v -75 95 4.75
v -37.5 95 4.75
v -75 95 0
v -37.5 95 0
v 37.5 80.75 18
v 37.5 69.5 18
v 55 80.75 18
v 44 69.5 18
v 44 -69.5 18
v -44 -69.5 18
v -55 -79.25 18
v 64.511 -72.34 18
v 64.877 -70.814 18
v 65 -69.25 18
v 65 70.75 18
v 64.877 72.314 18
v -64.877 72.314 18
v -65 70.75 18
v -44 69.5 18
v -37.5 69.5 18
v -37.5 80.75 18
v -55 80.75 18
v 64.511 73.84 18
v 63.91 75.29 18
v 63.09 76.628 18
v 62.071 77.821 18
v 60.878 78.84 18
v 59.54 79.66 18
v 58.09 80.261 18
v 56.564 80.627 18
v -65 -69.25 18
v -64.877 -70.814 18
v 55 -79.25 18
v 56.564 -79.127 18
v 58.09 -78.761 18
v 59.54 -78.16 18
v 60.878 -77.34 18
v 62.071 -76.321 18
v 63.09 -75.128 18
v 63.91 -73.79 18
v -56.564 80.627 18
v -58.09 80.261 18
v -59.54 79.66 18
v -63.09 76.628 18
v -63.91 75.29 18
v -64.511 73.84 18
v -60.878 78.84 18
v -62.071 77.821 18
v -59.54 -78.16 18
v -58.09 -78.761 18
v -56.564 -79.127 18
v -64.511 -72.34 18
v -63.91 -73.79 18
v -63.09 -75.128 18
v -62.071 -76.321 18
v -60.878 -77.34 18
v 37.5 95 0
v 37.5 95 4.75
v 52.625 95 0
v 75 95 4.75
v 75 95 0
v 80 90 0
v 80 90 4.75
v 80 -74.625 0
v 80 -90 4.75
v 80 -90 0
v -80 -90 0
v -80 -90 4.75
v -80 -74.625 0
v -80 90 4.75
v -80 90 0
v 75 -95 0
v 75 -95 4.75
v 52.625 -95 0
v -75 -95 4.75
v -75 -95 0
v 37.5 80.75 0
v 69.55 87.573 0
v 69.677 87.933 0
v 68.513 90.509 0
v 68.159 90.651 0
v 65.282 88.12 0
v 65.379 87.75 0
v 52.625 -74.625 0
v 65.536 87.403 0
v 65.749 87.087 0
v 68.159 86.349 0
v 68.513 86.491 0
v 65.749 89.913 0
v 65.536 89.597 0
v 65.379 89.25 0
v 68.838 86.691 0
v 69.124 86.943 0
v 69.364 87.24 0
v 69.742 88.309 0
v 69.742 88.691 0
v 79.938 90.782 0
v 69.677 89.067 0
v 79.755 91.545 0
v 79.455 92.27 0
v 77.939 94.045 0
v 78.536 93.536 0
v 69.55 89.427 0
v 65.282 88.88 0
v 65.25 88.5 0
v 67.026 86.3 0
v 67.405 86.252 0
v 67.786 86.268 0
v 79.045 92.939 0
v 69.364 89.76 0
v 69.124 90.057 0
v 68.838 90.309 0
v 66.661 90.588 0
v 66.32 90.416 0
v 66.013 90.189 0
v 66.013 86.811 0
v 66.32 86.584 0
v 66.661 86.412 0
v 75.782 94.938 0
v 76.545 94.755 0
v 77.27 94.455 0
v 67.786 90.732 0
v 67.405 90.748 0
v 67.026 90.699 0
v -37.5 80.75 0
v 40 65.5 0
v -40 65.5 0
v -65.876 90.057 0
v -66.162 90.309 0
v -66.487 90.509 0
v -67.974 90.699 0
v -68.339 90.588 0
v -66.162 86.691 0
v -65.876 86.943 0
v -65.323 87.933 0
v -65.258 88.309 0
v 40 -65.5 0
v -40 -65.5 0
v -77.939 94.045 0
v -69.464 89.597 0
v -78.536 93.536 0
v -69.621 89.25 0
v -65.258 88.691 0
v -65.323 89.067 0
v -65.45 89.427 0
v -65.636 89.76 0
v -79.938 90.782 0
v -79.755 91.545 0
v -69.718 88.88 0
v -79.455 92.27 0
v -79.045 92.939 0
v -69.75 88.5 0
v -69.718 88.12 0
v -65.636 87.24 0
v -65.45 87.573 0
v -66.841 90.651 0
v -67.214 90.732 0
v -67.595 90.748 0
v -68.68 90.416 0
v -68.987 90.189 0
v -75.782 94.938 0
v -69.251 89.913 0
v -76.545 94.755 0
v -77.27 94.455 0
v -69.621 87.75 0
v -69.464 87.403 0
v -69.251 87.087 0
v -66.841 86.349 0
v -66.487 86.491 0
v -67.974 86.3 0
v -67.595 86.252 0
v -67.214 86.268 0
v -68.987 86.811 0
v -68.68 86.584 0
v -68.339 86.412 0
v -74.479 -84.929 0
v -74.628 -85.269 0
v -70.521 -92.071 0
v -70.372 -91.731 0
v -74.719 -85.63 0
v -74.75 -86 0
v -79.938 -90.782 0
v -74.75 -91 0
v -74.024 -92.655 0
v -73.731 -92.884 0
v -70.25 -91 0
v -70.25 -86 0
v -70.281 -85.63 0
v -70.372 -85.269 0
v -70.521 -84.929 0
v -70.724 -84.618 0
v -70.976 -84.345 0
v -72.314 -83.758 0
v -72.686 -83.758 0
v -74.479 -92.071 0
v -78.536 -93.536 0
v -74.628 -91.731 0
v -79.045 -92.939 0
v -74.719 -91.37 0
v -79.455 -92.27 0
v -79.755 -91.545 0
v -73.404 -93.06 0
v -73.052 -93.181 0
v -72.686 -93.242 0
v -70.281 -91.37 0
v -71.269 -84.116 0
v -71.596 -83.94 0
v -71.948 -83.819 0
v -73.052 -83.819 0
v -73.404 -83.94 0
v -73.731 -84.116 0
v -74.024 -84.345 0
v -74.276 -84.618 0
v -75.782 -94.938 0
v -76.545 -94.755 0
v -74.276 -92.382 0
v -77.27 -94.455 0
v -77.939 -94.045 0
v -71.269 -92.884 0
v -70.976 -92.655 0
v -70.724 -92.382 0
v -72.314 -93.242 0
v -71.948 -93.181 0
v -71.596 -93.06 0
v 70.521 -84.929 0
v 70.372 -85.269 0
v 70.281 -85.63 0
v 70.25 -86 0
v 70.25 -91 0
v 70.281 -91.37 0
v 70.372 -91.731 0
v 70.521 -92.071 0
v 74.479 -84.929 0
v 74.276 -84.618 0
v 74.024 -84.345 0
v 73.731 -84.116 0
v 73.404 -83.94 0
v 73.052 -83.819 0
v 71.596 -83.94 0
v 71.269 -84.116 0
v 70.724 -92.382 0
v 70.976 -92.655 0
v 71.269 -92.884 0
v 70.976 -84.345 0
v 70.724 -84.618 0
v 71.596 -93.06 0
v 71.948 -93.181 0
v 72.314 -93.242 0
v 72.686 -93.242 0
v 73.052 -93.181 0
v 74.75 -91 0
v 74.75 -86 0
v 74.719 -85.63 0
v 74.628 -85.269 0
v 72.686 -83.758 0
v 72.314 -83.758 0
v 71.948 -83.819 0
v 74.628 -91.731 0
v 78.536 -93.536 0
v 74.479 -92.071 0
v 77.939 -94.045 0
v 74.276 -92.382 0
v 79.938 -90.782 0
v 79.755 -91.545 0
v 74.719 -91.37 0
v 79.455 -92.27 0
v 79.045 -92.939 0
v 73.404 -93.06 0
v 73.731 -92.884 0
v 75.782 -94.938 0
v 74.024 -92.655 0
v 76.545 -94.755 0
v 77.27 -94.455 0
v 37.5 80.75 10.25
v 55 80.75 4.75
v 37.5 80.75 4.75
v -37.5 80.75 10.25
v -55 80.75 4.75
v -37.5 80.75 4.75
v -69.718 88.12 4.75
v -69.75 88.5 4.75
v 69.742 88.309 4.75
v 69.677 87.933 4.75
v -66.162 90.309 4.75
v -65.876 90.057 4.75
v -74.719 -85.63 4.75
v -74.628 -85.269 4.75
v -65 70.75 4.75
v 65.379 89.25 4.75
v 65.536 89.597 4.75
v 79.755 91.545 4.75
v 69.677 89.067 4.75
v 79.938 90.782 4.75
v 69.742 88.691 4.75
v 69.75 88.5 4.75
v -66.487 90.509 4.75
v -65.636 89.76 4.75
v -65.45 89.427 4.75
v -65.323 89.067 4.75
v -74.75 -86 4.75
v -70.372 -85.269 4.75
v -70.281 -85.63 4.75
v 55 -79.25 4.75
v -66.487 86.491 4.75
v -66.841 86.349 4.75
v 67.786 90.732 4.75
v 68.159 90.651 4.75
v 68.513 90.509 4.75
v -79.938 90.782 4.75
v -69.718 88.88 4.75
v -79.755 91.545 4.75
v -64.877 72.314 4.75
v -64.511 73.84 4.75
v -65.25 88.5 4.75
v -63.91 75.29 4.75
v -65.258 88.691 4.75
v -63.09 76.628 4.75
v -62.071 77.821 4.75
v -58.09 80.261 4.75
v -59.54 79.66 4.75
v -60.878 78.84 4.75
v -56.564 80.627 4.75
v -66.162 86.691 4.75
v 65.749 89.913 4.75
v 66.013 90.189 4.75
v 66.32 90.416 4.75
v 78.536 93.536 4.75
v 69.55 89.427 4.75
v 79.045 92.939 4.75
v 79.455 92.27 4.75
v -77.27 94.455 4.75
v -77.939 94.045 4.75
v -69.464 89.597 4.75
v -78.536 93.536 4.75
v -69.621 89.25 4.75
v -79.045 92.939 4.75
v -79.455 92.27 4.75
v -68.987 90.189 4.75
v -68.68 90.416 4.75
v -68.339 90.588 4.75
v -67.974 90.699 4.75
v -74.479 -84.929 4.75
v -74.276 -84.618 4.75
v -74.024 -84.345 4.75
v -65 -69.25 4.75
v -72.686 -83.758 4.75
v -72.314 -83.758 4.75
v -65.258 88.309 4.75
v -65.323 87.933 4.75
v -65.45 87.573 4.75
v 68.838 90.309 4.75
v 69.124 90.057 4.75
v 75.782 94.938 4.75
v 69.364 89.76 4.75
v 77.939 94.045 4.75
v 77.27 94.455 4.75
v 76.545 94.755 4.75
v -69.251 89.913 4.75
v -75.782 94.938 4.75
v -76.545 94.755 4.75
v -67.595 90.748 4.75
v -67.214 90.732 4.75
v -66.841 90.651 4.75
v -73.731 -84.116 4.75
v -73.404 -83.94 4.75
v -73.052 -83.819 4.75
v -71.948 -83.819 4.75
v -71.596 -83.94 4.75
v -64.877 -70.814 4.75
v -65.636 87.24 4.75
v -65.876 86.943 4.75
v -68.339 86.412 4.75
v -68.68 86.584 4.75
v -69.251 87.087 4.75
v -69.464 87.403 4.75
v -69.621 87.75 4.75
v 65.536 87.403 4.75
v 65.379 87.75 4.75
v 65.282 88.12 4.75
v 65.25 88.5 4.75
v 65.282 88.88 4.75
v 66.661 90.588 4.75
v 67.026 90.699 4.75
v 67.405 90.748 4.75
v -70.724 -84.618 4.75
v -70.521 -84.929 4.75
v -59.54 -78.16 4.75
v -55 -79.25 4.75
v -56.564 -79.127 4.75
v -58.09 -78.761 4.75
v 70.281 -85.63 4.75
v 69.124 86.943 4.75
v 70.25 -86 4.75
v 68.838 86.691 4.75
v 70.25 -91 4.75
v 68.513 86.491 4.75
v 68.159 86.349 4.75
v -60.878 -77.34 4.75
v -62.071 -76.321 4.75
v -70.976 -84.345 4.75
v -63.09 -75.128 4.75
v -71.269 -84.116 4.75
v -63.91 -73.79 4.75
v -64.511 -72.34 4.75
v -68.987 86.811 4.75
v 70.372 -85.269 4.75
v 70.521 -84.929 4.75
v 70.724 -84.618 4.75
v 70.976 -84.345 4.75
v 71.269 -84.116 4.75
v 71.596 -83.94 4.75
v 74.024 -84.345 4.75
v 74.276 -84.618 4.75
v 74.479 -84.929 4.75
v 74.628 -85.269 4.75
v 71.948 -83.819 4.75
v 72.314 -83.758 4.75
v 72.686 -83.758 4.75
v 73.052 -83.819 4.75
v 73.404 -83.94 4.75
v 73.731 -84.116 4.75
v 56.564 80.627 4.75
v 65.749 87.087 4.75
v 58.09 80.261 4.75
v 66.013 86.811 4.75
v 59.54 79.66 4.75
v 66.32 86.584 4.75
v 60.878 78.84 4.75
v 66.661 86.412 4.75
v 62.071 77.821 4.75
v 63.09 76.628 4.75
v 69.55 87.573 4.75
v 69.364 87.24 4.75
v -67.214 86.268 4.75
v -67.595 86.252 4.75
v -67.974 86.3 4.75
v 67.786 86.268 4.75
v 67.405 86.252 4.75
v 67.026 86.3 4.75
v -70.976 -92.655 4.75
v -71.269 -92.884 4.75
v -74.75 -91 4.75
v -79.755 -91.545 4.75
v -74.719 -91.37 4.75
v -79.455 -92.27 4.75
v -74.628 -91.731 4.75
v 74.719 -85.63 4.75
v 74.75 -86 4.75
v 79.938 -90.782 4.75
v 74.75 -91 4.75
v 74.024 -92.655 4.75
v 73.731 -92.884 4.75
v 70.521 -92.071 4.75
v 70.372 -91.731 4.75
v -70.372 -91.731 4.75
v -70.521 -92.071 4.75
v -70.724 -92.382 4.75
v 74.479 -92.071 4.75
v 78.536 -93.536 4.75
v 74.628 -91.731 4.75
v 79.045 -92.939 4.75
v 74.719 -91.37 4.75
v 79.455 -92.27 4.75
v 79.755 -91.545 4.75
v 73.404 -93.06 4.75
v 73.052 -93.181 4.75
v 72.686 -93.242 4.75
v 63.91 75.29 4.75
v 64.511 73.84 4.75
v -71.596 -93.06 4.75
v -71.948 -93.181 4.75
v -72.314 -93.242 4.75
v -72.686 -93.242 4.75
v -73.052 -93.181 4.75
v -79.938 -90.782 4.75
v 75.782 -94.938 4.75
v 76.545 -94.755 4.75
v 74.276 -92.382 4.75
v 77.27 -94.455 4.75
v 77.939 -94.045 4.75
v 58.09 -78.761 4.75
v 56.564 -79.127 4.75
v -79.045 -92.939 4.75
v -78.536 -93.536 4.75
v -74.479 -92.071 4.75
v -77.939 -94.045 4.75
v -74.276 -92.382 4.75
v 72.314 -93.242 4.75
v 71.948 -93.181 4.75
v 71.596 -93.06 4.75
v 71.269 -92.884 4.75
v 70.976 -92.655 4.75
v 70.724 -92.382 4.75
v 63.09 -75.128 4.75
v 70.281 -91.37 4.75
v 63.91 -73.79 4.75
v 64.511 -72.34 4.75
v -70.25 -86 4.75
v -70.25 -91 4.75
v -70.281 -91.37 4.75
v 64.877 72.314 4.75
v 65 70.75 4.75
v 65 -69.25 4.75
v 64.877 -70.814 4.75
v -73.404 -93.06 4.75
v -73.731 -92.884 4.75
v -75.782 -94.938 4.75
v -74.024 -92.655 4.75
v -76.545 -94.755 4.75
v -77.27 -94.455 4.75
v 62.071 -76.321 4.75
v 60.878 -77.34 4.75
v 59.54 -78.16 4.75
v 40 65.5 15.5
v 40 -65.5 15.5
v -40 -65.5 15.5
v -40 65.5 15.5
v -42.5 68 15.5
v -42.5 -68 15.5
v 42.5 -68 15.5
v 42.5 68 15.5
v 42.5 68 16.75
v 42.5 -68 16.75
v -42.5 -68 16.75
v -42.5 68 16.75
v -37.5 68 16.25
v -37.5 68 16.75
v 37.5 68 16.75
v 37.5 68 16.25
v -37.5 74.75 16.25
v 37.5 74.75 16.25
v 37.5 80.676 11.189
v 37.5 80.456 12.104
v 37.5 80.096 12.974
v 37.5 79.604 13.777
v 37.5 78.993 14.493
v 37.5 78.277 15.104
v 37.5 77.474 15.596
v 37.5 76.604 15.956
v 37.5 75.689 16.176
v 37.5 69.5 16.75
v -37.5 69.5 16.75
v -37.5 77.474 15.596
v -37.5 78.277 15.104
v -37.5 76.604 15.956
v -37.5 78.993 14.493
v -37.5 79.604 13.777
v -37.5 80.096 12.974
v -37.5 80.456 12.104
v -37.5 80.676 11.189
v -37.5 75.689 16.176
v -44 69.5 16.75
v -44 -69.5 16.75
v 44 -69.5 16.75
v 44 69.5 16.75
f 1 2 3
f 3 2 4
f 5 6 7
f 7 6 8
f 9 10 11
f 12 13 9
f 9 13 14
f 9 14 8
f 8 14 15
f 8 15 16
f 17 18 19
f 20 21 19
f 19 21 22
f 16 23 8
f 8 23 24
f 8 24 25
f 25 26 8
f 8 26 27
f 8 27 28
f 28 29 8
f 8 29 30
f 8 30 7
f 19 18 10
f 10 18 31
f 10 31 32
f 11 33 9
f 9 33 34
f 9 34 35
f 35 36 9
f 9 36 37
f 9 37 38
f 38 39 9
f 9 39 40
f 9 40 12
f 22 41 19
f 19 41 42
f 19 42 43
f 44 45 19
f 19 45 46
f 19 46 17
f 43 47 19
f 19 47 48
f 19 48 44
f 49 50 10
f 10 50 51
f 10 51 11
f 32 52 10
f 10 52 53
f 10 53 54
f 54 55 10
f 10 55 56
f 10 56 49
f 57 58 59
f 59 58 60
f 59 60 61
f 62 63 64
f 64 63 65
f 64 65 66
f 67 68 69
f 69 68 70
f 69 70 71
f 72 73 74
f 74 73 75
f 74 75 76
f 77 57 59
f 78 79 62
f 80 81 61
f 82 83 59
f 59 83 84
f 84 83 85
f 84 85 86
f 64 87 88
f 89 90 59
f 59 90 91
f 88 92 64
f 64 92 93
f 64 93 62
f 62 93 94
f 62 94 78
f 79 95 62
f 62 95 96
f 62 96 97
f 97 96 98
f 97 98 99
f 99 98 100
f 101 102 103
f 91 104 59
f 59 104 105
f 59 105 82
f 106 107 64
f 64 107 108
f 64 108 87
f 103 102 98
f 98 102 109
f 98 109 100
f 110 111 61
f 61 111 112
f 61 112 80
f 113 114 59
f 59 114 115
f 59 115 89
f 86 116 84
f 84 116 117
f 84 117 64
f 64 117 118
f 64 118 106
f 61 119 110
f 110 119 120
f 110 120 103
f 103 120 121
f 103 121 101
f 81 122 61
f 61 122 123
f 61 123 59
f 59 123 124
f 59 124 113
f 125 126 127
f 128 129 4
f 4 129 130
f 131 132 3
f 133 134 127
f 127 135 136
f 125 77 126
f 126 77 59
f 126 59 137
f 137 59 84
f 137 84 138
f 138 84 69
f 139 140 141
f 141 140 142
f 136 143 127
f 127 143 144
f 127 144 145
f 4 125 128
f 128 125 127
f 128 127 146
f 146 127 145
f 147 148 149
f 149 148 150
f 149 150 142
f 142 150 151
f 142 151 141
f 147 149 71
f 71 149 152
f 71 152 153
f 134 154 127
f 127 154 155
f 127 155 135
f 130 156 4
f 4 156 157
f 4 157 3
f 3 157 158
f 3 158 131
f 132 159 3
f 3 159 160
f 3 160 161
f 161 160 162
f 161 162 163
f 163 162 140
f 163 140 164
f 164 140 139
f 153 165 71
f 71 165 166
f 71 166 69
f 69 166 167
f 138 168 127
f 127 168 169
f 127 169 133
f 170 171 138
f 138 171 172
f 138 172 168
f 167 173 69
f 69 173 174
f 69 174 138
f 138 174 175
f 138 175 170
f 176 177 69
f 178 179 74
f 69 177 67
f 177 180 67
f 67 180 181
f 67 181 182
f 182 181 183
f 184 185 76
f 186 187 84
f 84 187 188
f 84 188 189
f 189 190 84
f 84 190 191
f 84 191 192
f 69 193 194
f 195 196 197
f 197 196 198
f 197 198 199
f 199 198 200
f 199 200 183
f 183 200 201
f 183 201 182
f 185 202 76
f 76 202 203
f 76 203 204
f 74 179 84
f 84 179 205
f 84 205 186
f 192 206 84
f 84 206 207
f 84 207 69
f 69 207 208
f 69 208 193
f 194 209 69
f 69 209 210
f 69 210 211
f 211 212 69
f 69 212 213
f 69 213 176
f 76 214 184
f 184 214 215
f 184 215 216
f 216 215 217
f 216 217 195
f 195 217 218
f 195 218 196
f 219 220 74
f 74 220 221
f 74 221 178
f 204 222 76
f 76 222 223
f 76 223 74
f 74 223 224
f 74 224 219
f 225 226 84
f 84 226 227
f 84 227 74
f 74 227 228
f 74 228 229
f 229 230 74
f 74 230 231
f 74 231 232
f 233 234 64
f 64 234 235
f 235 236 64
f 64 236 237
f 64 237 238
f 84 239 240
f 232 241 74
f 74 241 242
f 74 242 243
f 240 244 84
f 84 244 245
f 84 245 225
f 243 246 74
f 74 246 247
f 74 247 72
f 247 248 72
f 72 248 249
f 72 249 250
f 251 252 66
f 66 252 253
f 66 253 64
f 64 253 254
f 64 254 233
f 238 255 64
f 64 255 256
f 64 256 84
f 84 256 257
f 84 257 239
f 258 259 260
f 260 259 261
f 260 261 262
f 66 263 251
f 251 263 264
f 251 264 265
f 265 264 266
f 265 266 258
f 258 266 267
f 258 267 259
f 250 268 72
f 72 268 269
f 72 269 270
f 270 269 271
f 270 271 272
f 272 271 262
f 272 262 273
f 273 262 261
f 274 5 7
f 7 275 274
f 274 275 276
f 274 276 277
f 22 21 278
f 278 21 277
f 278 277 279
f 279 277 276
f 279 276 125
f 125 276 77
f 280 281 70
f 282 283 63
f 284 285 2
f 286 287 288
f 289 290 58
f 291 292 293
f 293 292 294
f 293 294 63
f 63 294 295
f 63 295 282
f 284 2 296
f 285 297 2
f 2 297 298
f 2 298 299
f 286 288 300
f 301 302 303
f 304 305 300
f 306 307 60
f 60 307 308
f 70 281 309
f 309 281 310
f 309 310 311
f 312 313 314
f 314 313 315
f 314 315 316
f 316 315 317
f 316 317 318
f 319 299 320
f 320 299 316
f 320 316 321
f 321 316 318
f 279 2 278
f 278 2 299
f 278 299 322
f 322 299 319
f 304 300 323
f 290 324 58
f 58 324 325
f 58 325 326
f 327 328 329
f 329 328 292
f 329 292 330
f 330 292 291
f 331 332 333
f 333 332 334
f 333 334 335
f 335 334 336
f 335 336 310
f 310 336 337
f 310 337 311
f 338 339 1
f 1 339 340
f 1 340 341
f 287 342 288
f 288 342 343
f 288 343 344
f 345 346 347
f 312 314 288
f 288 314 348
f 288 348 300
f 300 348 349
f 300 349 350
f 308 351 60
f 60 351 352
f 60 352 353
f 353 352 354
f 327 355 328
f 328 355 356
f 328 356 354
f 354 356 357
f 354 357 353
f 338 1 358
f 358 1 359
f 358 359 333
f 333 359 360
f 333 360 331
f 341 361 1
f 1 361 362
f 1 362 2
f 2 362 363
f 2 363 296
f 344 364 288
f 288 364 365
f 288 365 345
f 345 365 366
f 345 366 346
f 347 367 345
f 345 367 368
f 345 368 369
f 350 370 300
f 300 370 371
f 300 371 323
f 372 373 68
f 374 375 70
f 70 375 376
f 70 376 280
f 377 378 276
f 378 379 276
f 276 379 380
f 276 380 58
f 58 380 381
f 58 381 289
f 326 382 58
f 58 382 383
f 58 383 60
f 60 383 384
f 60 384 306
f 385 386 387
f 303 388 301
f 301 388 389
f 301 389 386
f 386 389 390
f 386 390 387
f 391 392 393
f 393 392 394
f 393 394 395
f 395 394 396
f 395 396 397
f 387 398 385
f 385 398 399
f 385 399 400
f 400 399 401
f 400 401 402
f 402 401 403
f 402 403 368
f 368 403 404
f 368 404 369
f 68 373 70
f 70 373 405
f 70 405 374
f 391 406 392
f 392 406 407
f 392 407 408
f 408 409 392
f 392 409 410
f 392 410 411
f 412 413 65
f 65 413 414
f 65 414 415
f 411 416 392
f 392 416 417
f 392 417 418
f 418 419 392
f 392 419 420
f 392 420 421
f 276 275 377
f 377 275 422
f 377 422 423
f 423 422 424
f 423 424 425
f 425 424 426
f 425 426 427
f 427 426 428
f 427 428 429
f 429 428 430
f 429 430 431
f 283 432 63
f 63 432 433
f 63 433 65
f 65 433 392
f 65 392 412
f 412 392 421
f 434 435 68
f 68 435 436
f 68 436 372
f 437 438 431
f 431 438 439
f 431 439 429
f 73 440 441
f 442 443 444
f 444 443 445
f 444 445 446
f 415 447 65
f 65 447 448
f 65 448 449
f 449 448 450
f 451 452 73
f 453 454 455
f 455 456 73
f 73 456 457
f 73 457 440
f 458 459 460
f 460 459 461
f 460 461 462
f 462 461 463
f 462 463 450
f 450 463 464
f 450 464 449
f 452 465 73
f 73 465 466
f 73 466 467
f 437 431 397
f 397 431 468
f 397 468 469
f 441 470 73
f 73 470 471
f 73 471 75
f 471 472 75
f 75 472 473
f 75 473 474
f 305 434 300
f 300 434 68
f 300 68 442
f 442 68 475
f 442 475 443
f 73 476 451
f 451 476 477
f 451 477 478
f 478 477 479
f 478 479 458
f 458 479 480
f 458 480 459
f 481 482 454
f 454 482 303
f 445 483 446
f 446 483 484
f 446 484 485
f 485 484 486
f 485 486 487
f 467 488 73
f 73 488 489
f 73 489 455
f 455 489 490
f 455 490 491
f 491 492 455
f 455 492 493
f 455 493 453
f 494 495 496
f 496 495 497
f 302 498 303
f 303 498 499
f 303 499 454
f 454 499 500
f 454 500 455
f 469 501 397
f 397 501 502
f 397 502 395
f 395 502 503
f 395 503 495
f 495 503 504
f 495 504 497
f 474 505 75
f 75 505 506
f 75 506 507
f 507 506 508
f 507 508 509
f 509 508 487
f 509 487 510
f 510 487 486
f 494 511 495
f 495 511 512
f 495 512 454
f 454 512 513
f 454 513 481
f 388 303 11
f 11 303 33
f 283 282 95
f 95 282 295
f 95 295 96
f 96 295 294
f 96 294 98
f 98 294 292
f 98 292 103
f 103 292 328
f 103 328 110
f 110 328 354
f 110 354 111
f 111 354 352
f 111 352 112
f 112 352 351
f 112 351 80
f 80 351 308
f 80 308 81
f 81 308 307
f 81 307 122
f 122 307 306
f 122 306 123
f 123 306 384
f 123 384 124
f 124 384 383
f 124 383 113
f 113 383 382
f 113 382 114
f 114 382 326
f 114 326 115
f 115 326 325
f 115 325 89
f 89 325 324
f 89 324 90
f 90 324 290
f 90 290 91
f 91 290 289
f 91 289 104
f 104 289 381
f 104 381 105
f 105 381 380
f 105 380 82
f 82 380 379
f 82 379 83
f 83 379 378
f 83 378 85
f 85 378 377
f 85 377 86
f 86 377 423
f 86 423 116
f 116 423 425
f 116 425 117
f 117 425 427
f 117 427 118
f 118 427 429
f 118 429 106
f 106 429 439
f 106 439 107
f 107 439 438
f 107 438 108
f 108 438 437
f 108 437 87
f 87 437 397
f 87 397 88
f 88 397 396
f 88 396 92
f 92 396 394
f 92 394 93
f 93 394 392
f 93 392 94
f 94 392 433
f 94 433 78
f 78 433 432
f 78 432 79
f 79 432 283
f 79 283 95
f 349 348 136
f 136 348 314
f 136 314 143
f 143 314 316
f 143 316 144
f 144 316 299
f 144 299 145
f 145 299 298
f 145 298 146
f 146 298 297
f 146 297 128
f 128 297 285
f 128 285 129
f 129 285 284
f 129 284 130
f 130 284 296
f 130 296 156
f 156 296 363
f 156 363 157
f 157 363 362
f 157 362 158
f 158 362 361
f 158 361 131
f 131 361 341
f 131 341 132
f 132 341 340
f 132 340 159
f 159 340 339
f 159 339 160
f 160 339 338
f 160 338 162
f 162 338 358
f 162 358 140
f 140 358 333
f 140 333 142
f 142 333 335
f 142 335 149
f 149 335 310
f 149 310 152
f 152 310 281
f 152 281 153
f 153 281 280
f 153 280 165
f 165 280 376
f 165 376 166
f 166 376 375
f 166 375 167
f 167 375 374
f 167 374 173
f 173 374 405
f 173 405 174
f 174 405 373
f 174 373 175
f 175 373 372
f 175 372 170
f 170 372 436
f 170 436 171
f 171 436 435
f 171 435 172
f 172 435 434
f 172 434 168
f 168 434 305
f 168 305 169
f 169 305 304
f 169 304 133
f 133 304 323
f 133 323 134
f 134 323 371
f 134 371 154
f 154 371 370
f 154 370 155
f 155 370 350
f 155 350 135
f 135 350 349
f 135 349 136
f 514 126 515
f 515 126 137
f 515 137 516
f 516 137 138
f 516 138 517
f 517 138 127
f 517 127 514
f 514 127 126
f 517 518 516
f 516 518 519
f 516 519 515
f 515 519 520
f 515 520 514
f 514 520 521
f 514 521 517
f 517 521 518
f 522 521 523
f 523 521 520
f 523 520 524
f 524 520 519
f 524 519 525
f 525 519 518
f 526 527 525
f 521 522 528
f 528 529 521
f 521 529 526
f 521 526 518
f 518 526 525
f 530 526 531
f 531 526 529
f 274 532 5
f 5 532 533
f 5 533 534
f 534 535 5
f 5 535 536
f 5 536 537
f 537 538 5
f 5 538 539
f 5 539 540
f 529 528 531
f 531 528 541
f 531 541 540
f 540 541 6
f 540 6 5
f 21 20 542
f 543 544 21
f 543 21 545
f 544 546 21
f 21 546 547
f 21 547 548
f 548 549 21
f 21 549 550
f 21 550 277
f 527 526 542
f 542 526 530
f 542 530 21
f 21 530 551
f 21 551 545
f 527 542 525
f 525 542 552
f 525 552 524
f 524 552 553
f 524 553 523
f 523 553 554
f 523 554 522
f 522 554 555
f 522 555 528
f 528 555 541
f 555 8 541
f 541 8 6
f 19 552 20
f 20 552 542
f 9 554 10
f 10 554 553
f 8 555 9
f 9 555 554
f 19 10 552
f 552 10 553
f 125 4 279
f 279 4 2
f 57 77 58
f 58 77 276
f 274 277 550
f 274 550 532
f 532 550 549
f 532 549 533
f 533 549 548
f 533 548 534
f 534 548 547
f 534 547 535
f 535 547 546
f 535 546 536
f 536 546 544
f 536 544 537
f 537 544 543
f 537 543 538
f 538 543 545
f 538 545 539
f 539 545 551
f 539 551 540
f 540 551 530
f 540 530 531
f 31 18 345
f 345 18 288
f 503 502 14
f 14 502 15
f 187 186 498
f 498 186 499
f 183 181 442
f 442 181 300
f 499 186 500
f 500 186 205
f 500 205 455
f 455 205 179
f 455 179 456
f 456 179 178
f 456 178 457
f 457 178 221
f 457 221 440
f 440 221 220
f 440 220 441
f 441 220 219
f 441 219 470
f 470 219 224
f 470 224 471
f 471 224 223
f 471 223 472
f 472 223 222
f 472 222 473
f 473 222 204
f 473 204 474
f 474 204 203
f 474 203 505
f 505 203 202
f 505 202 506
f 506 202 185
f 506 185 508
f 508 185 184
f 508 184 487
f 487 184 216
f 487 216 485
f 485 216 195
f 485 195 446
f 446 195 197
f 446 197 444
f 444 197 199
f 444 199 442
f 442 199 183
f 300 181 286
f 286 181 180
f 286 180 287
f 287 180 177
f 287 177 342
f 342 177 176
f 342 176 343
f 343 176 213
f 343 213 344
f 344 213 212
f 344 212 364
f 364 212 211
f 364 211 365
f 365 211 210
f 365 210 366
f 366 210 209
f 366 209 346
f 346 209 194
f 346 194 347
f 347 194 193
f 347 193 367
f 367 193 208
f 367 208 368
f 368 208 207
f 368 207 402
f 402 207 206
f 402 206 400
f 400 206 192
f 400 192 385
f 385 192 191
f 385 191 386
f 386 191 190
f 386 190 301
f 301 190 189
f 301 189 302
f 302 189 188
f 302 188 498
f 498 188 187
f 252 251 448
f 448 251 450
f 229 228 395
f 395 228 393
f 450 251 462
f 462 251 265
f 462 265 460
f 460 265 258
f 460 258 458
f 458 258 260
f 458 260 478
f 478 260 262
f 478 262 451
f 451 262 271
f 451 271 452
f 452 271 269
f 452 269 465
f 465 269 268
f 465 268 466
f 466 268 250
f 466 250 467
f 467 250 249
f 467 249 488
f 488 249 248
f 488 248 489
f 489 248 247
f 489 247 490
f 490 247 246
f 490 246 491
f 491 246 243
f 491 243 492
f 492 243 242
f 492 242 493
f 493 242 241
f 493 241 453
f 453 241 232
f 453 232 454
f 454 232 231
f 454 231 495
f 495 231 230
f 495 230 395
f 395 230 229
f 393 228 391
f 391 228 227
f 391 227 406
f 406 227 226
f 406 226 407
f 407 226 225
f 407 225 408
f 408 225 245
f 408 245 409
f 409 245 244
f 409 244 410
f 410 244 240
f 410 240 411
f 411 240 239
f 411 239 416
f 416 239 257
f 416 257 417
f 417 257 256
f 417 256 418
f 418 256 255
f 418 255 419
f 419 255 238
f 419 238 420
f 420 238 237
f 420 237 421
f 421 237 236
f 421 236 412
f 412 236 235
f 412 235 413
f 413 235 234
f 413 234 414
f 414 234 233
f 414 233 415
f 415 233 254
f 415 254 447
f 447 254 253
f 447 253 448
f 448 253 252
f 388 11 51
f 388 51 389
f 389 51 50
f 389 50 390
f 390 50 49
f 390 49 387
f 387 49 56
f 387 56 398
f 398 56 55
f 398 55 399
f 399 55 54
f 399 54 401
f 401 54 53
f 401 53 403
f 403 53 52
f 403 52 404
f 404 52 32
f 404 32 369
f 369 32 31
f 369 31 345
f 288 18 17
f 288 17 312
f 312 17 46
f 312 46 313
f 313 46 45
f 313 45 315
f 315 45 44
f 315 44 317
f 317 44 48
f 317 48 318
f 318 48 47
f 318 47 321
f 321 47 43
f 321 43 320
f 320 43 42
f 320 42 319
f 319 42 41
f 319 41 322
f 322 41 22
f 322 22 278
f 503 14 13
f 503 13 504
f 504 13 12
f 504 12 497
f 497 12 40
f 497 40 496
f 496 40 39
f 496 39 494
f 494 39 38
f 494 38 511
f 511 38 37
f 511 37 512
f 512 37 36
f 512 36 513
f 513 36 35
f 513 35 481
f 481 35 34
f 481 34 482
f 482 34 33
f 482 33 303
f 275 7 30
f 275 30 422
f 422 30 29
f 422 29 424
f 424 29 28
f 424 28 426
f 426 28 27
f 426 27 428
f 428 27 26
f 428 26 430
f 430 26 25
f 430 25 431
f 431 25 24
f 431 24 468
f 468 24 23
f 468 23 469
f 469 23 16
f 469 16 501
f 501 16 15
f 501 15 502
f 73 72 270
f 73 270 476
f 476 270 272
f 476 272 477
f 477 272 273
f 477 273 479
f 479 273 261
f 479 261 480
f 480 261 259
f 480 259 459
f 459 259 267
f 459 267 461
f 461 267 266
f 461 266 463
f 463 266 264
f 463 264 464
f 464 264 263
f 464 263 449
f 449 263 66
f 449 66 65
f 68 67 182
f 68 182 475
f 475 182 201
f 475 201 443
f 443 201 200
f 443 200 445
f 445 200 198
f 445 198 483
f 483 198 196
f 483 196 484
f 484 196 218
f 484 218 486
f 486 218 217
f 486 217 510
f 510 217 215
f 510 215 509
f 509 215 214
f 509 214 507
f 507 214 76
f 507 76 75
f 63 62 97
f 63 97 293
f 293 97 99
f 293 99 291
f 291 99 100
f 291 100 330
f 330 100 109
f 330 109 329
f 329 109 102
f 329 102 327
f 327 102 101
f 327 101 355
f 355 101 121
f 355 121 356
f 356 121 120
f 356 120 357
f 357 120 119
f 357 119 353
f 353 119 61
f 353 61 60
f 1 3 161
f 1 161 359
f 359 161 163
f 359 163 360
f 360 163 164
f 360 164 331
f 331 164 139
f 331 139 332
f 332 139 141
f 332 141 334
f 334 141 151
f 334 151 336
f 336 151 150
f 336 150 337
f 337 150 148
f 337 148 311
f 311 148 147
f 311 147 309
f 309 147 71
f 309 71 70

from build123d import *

# Parameters (mm, degrees)
SKETCH1_W           = 160
SKETCH1_H           = 190
BOSS_EXTRUDE1_DEPTH = 18
SKETCH3_W           = 160
SKETCH3_H           = 14.25
CUT_EXTRUDE2_DEPTH  = 13.25
SKETCH4_W           = 160
SKETCH4_H           = 15.75
CUT_EXTRUDE3_DEPTH  = 13.25
SKETCH2_R           = 2.25
CUT_EXTRUDE1_DEPTH  = 126.495019822
SKETCH5_W           = 80
SKETCH5_H           = 131
CUT_EXTRUDE4_DEPTH  = 126.495019822
SKETCH6_W           = 85
SKETCH6_H           = 136
CUT_EXTRUDE5_DEPTH  = 2.5
SKETCH7_W           = 75
SKETCH7_H           = 12.75
CUT_EXTRUDE6_DEPTH  = 1.75
SKETCH8_W           = 88
SKETCH8_H           = 139
CUT_EXTRUDE7_DEPTH  = 1.25
SKETCH9_W           = 75
SKETCH9_H           = 14.25
CUT_EXTRUDE8_DEPTH  = 125.90221175
FILLET1_R           = 6
SKETCH10_W          = 15
SKETCH10_H          = 160
CUT_EXTRUDE9_DEPTH  = 13.25
CUT_EXTRUDE10_DEPTH = 126.495019822
FILLET2_R           = 10
FILLET3_R           = 5


with BuildPart() as part:
    # Sketch1 → Boss-Extrude1 (new body)
    with BuildSketch(Plane.XY):
        Rectangle(SKETCH1_W, SKETCH1_H)
    extrude(amount=BOSS_EXTRUDE1_DEPTH)

    # Sketch3 → Cut-Extrude2 (cut)
    with BuildSketch(Plane.XY.offset(18)):
        with Locations((0, 87.875)):
            Rectangle(SKETCH3_W, SKETCH3_H)
    extrude(amount=-CUT_EXTRUDE2_DEPTH, mode=Mode.SUBTRACT)

    # Sketch4 → Cut-Extrude3 (cut)
    with BuildSketch(Plane.XY.offset(18)):
        with Locations((0, -87.125)):
            Rectangle(SKETCH4_W, SKETCH4_H)
    extrude(amount=-CUT_EXTRUDE3_DEPTH, mode=Mode.SUBTRACT)

    # Sketch2 → Cut-Extrude1 (cut, through all)
    with BuildSketch(Plane(origin=(0, 0, 0), x_dir=(-1, 0, 0), z_dir=(0, 0, -1))):
        with Locations((-67.5, 88.5)):
            Circle(SKETCH2_R)
        with Locations((67.5, 88.5)):
            Circle(SKETCH2_R)
        with Locations((-72.5, -88.5)):
            Circle(SKETCH2_R)
        with Locations((72.5, -88.5)):
            Circle(SKETCH2_R)
    extrude(amount=-CUT_EXTRUDE1_DEPTH, mode=Mode.SUBTRACT)

    # Sketch5 → Cut-Extrude4 (cut, through all)
    with BuildSketch(Plane.XY.offset(18)):
        Rectangle(SKETCH5_W, SKETCH5_H)
    extrude(amount=-CUT_EXTRUDE4_DEPTH, mode=Mode.SUBTRACT)

    # Sketch6 → Cut-Extrude5 (cut)
    with BuildSketch(Plane.XY.offset(18)):
        Rectangle(SKETCH6_W, SKETCH6_H)
    extrude(amount=-CUT_EXTRUDE5_DEPTH, mode=Mode.SUBTRACT)

    # Sketch7 → Cut-Extrude6 (cut)
    with BuildSketch(Plane.XY.offset(18)):
        with Locations((0, 74.375)):
            Rectangle(SKETCH7_W, SKETCH7_H)
    extrude(amount=-CUT_EXTRUDE6_DEPTH, mode=Mode.SUBTRACT)

    # Sketch8 → Cut-Extrude7 (cut)
    with BuildSketch(Plane.XY.offset(18)):
        Rectangle(SKETCH8_W, SKETCH8_H)
    extrude(amount=-CUT_EXTRUDE7_DEPTH, mode=Mode.SUBTRACT)

    # Sketch9 → Cut-Extrude8 (cut, through all)
    with BuildSketch(Plane.XY.offset(4.75)):
        with Locations((0, 87.875)):
            Rectangle(SKETCH9_W, SKETCH9_H)
    extrude(amount=-CUT_EXTRUDE8_DEPTH, mode=Mode.SUBTRACT)

    # Fillet1
    fillet1_edges = [part.edges().sort_by_distance(p)[0] for p in [
        (0, 80.75, 16.25),
    ]]
    fillet(fillet1_edges, radius=FILLET1_R)

    # Sketch10 → Cut-Extrude9 (cut)
    with BuildSketch(Plane.XY.offset(18)):
        with Locations((72.5, 0.75)):
            Rectangle(SKETCH10_W, SKETCH10_H)
        with Locations((-72.5, 0.75)):
            Rectangle(SKETCH10_W, SKETCH10_H)
    extrude(amount=-CUT_EXTRUDE9_DEPTH, mode=Mode.SUBTRACT)

    # Sketch11 → Cut-Extrude10 (cut, through all)
    with BuildSketch(Plane(origin=(0, 0, 0), x_dir=(-1, 0, 0), z_dir=(0, 0, -1))):
        with BuildLine():
            Line((-74.75, -91), (-74.75, -86))
            ThreePointArc((-74.75, -86), (-72.5, -83.75), (-70.25, -86))
            Line((-70.25, -86), (-70.25, -91))
            ThreePointArc((-70.25, -91), (-72.5, -93.25), (-74.75, -91))
        make_face()
        with BuildLine():
            Line((70.25, -91), (70.25, -86))
            ThreePointArc((70.25, -86), (72.5, -83.75), (74.75, -86))
            Line((74.75, -86), (74.75, -91))
            ThreePointArc((74.75, -91), (72.5, -93.25), (70.25, -91))
        make_face()
    extrude(amount=-CUT_EXTRUDE10_DEPTH, mode=Mode.SUBTRACT)

    # Fillet2
    fillet2_edges = [part.edges().sort_by_distance(p)[0] for p in [
        (65, 80.75, 11.375),
        (65, -79.25, 11.375),
        (-65, -79.25, 11.375),
        (-65, 80.75, 11.375),
    ]]
    fillet(fillet2_edges, radius=FILLET2_R)

    # Fillet3
    fillet3_edges = [part.edges().sort_by_distance(p)[0] for p in [
        (-80, 95, 2.375),
        (80, 95, 2.375),
        (80, -95, 2.375),
        (-80, -95, 2.375),
    ]]
    fillet(fillet3_edges, radius=FILLET3_R)


solid = part.part
